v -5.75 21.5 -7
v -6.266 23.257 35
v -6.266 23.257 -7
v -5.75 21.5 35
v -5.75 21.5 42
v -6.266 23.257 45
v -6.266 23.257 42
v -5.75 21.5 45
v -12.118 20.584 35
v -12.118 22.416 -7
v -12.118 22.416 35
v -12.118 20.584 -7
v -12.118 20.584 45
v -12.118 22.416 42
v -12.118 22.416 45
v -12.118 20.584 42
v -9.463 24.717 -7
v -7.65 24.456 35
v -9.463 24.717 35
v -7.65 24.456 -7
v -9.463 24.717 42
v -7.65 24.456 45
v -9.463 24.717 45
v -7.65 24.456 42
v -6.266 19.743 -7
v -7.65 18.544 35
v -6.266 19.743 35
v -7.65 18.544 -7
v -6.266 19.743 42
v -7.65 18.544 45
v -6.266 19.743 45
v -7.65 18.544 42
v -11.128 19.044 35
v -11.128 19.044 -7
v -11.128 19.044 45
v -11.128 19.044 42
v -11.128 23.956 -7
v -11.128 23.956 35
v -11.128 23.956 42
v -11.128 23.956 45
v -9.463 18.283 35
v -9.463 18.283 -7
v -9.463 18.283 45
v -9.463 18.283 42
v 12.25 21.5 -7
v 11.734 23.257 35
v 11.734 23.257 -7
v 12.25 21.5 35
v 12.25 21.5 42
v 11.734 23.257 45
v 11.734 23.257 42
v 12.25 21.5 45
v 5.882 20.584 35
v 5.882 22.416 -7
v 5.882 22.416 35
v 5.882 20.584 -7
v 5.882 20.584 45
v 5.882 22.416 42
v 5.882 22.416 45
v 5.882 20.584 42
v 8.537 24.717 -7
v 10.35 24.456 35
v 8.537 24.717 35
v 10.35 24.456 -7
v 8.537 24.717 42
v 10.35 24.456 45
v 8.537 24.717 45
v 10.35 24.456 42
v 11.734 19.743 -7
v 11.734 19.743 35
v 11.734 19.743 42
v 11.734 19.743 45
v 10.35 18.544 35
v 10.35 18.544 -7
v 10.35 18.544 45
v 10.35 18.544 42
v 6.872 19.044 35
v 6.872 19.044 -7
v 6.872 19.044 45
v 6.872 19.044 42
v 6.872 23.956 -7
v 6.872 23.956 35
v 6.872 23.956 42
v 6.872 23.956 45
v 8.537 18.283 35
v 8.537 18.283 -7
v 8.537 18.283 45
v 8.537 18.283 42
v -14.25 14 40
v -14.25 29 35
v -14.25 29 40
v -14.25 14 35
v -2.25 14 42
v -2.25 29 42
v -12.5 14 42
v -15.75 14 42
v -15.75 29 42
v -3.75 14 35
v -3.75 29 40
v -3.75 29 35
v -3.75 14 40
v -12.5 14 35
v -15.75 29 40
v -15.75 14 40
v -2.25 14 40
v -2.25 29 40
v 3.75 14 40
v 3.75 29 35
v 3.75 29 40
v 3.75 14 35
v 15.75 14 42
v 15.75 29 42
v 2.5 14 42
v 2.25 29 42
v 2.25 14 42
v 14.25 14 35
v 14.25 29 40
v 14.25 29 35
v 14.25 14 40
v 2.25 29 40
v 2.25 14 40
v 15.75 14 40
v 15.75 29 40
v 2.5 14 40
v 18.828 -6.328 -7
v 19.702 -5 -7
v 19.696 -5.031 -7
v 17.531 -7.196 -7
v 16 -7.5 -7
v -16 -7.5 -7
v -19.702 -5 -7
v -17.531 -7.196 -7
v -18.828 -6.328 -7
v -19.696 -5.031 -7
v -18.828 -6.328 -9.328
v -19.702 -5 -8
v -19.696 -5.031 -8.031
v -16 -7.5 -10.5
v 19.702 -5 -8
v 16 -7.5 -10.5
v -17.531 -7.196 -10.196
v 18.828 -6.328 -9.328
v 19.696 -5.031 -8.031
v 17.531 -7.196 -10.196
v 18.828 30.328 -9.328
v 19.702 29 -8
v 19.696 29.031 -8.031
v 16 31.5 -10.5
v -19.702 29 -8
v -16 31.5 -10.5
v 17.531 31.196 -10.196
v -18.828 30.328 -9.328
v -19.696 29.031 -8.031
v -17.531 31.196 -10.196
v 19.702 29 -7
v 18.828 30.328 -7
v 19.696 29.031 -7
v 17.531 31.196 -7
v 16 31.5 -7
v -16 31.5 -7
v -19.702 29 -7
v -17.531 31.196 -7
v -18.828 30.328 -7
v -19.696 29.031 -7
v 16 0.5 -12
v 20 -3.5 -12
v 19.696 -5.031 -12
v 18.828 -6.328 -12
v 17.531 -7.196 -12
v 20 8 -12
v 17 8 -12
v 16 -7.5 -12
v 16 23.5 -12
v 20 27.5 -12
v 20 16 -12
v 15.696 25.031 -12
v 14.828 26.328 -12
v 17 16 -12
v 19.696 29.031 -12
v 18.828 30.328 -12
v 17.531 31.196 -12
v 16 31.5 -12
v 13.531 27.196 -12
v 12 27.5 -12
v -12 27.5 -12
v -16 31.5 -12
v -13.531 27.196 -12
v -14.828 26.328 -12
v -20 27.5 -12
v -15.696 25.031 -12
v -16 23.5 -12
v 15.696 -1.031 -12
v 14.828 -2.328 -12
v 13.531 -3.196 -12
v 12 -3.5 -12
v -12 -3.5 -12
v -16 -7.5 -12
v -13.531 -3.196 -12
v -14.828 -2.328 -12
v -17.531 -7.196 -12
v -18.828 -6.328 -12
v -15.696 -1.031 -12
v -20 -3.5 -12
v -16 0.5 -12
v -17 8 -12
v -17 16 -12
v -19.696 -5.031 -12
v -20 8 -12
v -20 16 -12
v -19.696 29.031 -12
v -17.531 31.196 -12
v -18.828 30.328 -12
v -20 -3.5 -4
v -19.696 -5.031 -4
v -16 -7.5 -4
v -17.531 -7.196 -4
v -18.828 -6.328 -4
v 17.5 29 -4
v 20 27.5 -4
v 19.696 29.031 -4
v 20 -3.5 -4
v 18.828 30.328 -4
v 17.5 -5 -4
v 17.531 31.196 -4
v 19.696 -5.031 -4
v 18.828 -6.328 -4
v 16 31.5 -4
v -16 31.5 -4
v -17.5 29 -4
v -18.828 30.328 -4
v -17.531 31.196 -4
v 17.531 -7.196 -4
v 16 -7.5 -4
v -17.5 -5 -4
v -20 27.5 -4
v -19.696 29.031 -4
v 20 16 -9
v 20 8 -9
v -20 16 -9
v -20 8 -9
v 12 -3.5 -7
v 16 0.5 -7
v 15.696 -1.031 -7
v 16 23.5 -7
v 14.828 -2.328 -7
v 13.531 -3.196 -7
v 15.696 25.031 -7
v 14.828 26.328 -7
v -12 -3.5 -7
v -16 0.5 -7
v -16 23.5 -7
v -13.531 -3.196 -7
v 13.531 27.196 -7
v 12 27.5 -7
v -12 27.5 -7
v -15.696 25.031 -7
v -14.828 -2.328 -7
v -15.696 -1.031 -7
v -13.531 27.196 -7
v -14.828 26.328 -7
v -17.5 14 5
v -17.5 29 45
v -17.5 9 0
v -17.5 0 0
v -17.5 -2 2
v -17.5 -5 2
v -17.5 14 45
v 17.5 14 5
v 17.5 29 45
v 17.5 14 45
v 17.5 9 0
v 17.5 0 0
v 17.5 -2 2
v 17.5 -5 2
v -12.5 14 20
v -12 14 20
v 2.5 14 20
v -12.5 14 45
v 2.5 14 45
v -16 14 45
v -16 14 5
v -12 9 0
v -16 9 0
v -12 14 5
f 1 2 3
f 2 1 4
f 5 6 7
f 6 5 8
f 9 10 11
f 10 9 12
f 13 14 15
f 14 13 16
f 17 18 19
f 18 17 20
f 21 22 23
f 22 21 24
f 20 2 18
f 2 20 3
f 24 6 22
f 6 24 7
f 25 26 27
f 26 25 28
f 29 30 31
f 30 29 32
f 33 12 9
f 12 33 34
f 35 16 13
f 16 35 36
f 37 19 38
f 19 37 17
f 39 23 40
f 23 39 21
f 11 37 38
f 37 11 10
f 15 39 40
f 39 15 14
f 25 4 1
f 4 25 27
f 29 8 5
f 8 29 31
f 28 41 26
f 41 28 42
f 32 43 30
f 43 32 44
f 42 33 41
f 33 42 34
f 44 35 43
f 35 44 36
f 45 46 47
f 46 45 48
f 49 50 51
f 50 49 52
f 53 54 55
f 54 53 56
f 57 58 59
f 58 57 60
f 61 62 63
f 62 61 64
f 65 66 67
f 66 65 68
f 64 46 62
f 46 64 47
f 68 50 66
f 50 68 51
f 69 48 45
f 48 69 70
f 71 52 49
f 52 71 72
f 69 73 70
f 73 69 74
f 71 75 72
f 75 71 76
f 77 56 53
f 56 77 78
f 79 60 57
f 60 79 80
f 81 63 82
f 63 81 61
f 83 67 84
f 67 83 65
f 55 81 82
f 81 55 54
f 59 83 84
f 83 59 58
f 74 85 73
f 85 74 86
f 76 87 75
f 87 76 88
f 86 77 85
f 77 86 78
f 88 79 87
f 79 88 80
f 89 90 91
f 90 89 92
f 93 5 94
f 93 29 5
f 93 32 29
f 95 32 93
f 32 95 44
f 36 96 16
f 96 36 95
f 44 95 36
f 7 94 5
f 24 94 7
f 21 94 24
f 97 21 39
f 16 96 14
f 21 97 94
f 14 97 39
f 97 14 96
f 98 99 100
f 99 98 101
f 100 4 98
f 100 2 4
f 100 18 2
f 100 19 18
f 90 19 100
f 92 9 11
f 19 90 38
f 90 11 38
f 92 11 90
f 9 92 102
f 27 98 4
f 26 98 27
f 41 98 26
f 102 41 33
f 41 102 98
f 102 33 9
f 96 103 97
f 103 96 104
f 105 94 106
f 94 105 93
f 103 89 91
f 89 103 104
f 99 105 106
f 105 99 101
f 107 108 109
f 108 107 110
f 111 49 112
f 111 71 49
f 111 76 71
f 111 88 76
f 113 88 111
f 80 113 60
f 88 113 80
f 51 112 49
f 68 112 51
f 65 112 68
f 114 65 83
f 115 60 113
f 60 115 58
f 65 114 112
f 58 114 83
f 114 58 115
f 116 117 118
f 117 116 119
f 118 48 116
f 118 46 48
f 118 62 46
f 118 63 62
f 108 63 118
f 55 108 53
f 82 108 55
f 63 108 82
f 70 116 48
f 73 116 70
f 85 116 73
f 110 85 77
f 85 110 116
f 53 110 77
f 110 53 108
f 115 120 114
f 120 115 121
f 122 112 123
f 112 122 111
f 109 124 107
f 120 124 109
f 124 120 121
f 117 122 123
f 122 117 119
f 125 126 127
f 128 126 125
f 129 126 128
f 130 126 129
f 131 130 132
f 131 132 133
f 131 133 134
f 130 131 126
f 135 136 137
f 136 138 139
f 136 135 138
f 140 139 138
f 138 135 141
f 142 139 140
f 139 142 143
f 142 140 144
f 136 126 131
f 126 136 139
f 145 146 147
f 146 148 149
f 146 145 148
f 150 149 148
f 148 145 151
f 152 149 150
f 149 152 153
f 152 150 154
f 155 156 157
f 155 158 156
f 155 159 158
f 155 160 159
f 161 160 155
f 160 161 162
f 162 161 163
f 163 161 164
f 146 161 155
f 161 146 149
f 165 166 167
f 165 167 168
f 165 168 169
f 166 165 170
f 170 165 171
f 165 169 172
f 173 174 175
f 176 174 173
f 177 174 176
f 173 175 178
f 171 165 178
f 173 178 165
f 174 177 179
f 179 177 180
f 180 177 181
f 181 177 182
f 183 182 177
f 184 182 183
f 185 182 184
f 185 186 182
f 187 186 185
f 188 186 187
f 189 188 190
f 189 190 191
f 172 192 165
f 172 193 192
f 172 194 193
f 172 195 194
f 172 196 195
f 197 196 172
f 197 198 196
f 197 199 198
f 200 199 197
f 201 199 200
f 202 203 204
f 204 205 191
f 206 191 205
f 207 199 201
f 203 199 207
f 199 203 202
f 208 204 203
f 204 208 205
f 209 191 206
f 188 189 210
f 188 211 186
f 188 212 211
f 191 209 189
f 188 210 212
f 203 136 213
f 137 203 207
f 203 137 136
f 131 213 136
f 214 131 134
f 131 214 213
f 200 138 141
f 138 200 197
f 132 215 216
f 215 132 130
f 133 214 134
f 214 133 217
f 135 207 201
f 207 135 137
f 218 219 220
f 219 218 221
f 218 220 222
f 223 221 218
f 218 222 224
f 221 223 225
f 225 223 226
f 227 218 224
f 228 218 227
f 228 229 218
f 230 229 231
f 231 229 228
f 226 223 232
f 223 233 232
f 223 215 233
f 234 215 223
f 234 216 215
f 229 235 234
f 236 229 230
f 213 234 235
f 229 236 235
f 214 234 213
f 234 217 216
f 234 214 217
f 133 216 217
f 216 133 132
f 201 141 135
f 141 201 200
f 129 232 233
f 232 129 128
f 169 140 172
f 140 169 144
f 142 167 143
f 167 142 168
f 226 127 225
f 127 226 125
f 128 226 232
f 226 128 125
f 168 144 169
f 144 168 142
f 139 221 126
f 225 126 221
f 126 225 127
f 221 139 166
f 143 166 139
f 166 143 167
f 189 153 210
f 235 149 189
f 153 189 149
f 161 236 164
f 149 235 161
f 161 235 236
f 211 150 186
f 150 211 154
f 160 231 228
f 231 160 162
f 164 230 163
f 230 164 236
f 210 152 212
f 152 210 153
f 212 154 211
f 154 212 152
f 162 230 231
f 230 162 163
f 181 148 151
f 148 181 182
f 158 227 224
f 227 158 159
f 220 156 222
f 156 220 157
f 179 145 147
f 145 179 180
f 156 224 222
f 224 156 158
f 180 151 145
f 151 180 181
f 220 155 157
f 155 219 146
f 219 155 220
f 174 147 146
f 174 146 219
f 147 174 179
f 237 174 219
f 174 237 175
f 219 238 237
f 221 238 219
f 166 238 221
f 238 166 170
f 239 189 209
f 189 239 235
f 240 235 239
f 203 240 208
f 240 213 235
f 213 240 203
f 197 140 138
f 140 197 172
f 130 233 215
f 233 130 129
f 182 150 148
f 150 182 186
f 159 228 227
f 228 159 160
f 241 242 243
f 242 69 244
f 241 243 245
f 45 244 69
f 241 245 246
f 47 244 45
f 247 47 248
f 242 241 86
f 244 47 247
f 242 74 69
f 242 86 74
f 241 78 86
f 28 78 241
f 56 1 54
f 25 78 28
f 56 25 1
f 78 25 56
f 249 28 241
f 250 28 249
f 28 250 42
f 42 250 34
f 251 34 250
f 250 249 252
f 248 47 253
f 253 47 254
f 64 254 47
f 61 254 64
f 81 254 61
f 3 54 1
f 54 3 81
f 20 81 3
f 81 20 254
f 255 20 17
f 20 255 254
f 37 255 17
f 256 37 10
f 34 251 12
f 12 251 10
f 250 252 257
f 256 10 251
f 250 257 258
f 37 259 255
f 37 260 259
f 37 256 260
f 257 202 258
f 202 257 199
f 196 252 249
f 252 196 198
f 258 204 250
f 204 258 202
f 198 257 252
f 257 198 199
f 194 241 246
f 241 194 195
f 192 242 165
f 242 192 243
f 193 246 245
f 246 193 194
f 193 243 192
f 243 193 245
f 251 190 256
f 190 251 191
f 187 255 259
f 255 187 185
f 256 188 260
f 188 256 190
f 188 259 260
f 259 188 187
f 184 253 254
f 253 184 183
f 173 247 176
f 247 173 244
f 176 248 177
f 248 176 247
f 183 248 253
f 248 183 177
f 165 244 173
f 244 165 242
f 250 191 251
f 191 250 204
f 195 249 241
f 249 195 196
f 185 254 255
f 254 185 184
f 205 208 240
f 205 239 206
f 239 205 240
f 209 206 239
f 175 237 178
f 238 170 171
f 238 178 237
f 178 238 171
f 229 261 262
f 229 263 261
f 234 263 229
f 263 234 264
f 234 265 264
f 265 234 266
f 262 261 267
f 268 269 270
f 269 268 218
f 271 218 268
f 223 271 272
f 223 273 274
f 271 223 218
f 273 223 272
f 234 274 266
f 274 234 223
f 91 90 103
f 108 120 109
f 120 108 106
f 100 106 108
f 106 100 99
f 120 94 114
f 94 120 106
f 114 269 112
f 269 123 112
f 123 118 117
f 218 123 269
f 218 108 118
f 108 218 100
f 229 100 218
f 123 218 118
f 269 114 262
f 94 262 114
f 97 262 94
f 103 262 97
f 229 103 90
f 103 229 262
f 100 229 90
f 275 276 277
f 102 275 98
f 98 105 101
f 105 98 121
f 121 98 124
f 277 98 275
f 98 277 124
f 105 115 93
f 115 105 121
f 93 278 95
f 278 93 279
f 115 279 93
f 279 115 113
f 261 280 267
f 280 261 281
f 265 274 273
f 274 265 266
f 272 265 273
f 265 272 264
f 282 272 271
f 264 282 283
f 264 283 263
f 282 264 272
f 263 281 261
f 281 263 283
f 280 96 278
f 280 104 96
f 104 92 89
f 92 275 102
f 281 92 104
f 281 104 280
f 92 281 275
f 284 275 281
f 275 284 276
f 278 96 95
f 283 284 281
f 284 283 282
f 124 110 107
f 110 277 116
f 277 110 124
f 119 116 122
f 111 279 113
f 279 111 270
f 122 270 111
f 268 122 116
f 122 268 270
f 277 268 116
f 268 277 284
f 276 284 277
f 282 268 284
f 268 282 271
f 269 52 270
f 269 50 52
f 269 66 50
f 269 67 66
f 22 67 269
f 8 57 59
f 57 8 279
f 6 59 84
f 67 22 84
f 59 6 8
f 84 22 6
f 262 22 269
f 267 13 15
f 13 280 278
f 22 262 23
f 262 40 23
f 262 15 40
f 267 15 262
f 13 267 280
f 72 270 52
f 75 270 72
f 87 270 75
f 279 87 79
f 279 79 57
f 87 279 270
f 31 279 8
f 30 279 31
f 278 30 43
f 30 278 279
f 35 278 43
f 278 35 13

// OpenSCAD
/* A clamp for Nokia 808, requires the plate, and a 5 mm bolt and a winged nut.
 *
 * Author: Lari Koponen
 * Version: 0.0
 */

module rounded_cubic_cylinder(w,d,h,r)
{
	union()
	{
		for (x = [-(w/2-r),w/2-r]) {
			for (y = [-(d/2-r),d/2-r]) {
				translate([x,y,0]) cylinder(h = h, r = r, $fn = 16);
			}
		}
		translate([-(w-2*r)/2,-d/2,0]) cube([w-2*r,d,h]);
		translate([-w/2,-(d-2*r)/2,0]) cube([w,d-2*r,h]);
	}
}

phone_width = 60;
phone_thickness = 14;

adapter_width = 35;

width = 39;
depth = 40;
height = 8;
thickness_side = 4;
thickness_base = 3;
eps = 0.001;

difference() {
    union() {
        translate([0, 12, -4])
        rotate([180, 0, 90])
        difference() {
            // The plate.
            x1 = width;
            y1 = depth;
            z1 = height;
            rounded_cubic_cylinder(x1, y1, z1, thickness_side);
            
            // Center cut out.
            x2 = width - 2 * thickness_side;
            y2 = depth - 2 * thickness_side;
            z2 = height - thickness_base + eps;
            translate([0, 0, thickness_base]) rounded_cubic_cylinder(x2, y2, z2, thickness_side);

            // Left and right dovetail.
            for (sign = [-1, 1]) {
                translate([34/2 * sign, -20 * sign, thickness_base])
                rotate([90, 0, 90 + 90 * sign])
                linear_extrude(height = 40, center = false, convexity = 10, twist = 0, slices = 10)
                polygon([[0, 0], [0, 1], [-4, 5], [-4, 0]]);
            }
            
            // Front and back ramps.
            for (sign = [-1, 1]) {
                //translate([34/2 * sign, -20 * sign, thickness_base])
                translate([4 * sign, depth/2 * sign, height])
                rotate([90, 0, 180 + 90 * sign])
                linear_extrude(height = 8, center = false, convexity = 10, twist = 0, slices = 8)
                polygon([[-1, 1], [-1, -4], [4, 1]]);
            }
        }
    
        translate([-adapter_width/2, -5, -5]) cube([adapter_width, phone_thickness + 5 + 15, phone_width + 5 + 5]);
    }    

    translate([-(adapter_width-10)/2, -10, 20]) cube([adapter_width - 20, phone_thickness + 10, 100]);
    
    // A cut out for Nokia 808 phone.
    translate([-20, 0, 0])
    rotate([90, 0, 90])
    linear_extrude(height = 40, center = false, convexity = 10, twist = 0, slices = 10)
    polygon([[-10, 2], [-2, 2], [0, 0], [phone_thickness - 5, 0], [phone_thickness, 5], [phone_thickness, phone_width - 5], [phone_thickness - 5, phone_width], [0, phone_width], [-2, phone_width - 2], [-10, phone_width - 2]]);
    
    // Holes.
    for (position = [-9, 9]) {
        translate([position, 14 + 7.5, -10]) cylinder(d = 6.5, h = phone_width + 20);
    }
    
    for (position = [-9, 9]) {
        translate([-10.5/2 + position, -50, 35]) cube([10.5, 100, 7]);
        translate([-13.5/2 + position, -50, 40]) cube([13.5, 100, 2]);
    }
    
    translate([-50, -50, 45]) cube([100, 100, 25]);
}
